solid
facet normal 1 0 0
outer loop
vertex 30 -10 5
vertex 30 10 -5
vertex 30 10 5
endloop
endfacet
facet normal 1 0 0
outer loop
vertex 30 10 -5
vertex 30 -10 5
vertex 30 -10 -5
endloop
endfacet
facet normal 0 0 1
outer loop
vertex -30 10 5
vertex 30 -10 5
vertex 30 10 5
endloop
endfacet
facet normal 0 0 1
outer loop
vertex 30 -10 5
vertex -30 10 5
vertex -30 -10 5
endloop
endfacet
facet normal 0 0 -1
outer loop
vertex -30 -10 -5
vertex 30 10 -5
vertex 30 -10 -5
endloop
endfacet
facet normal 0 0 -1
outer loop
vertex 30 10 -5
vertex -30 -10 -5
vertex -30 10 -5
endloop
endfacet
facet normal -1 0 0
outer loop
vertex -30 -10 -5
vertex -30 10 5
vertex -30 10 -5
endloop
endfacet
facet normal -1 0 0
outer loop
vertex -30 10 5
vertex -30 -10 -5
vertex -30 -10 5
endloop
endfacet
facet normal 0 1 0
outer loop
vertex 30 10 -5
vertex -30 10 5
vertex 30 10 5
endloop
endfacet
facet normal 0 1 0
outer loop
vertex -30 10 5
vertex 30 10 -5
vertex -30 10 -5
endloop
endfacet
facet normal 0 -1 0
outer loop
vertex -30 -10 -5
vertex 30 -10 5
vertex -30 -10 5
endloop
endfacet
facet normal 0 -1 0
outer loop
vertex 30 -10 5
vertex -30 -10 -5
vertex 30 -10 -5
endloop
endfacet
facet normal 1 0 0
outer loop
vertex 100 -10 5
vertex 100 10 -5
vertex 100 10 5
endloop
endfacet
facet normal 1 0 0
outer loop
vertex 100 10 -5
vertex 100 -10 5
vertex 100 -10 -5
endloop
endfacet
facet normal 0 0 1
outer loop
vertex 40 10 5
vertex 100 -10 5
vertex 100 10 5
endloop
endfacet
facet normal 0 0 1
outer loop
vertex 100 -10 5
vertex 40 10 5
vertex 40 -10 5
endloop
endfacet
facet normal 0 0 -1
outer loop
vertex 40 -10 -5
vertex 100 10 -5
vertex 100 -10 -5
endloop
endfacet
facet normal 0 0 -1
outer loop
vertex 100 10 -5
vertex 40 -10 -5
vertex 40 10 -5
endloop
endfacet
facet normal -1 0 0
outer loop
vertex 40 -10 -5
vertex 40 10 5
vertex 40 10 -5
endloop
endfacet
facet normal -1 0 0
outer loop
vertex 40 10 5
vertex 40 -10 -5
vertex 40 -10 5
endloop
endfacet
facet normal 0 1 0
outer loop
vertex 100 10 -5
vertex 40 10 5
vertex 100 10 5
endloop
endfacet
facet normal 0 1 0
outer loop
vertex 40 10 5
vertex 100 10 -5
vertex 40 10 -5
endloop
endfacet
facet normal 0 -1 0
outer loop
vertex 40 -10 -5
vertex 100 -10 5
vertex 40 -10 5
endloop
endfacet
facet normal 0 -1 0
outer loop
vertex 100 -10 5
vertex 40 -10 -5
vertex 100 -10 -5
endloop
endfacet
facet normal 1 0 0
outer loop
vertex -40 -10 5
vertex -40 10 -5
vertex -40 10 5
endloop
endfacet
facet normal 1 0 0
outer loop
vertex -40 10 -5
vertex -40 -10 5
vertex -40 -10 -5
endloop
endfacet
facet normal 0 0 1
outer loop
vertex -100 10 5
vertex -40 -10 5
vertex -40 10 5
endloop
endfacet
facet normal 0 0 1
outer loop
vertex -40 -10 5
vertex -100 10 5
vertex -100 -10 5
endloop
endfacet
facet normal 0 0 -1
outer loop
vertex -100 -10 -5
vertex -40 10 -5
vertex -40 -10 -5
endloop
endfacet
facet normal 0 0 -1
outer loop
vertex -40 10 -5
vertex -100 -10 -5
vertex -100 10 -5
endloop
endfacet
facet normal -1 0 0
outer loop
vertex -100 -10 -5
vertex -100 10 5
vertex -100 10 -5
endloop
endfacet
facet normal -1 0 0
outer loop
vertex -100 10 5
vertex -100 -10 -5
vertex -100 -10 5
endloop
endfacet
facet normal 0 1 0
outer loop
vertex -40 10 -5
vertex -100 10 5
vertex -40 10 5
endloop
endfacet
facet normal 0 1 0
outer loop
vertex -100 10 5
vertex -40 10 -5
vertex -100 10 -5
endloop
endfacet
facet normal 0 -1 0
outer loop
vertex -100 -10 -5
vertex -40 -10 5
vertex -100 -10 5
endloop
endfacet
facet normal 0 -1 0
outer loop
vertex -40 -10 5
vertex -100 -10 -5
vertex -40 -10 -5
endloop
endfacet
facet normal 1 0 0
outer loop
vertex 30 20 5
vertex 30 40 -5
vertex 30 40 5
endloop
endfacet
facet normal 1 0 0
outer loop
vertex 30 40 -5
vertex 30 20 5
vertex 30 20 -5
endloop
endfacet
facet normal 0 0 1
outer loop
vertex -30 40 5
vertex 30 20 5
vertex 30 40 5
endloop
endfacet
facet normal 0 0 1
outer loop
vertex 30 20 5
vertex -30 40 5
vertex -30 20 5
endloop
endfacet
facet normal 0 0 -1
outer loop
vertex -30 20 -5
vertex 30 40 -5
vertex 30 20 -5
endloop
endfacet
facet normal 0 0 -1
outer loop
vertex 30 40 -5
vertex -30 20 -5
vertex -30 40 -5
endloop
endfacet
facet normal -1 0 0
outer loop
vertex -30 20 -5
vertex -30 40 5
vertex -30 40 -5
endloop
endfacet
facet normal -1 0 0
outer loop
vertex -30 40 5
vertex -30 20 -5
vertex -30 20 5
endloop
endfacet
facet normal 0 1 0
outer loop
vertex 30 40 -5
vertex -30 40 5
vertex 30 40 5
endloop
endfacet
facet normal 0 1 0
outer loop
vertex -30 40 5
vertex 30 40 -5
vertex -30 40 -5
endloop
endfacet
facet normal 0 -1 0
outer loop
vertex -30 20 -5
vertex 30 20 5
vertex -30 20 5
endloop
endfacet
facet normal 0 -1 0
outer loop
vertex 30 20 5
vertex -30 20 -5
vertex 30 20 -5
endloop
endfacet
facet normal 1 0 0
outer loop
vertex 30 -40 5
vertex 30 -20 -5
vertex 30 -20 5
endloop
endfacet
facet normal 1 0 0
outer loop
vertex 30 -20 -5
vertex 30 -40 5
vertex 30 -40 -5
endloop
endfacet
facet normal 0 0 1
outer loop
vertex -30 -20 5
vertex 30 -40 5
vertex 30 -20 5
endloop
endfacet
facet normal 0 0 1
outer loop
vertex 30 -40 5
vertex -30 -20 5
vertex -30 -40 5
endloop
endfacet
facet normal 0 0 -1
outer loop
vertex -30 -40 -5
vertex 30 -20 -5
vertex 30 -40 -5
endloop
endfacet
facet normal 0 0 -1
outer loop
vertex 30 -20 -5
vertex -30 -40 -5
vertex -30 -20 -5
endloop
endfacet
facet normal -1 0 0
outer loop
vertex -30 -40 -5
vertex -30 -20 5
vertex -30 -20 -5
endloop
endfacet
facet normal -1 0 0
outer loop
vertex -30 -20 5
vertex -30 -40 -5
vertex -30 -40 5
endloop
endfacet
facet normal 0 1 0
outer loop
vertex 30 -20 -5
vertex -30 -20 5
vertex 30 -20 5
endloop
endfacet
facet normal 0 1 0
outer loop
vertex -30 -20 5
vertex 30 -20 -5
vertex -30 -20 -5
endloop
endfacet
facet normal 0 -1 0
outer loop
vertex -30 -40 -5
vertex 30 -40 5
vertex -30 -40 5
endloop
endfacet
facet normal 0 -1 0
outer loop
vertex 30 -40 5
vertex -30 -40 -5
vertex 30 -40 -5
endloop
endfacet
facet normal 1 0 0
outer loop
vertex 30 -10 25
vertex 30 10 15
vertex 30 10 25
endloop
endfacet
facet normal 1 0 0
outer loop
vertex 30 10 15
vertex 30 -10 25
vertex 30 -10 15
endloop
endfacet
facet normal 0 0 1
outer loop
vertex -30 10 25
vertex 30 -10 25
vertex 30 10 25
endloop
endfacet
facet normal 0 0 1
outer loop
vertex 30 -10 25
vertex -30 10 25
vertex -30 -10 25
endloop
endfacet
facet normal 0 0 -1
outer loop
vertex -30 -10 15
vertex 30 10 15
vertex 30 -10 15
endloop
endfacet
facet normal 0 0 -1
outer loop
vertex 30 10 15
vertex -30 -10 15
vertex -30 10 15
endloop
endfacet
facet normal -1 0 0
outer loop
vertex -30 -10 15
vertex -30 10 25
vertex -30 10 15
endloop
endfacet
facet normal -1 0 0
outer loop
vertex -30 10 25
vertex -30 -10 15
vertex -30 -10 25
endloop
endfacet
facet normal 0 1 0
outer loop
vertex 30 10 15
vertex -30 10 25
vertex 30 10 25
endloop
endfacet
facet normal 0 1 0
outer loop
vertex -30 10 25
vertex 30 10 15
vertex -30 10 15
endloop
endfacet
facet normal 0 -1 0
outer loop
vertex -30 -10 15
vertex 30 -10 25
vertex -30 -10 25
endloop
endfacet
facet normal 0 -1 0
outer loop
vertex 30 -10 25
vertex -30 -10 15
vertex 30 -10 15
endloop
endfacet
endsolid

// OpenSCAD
// Define dimensions for the rectangular blocks
block_length = 60;  // Length of the block
block_width = 20;   // Width of the block
block_height = 10;  // Height of the block

// Function to create a rectangular block
module rectangular_block() {
    cube([block_length, block_width, block_height], center = true);
}

// Generate individual blocks based on the original model configuration
translate([0, 0, 0]) rectangular_block(); // Block 1
translate([block_length + 10, 0, 0]) rectangular_block(); // Block 2
translate([-(block_length + 10), 0, 0]) rectangular_block(); // Block 3
translate([0, block_width + 10, 0]) rectangular_block(); // Block 4
translate([0, -(block_width + 10), 0]) rectangular_block(); // Block 5
translate([0, 0, block_height + 10]) rectangular_block(); // Block 6
